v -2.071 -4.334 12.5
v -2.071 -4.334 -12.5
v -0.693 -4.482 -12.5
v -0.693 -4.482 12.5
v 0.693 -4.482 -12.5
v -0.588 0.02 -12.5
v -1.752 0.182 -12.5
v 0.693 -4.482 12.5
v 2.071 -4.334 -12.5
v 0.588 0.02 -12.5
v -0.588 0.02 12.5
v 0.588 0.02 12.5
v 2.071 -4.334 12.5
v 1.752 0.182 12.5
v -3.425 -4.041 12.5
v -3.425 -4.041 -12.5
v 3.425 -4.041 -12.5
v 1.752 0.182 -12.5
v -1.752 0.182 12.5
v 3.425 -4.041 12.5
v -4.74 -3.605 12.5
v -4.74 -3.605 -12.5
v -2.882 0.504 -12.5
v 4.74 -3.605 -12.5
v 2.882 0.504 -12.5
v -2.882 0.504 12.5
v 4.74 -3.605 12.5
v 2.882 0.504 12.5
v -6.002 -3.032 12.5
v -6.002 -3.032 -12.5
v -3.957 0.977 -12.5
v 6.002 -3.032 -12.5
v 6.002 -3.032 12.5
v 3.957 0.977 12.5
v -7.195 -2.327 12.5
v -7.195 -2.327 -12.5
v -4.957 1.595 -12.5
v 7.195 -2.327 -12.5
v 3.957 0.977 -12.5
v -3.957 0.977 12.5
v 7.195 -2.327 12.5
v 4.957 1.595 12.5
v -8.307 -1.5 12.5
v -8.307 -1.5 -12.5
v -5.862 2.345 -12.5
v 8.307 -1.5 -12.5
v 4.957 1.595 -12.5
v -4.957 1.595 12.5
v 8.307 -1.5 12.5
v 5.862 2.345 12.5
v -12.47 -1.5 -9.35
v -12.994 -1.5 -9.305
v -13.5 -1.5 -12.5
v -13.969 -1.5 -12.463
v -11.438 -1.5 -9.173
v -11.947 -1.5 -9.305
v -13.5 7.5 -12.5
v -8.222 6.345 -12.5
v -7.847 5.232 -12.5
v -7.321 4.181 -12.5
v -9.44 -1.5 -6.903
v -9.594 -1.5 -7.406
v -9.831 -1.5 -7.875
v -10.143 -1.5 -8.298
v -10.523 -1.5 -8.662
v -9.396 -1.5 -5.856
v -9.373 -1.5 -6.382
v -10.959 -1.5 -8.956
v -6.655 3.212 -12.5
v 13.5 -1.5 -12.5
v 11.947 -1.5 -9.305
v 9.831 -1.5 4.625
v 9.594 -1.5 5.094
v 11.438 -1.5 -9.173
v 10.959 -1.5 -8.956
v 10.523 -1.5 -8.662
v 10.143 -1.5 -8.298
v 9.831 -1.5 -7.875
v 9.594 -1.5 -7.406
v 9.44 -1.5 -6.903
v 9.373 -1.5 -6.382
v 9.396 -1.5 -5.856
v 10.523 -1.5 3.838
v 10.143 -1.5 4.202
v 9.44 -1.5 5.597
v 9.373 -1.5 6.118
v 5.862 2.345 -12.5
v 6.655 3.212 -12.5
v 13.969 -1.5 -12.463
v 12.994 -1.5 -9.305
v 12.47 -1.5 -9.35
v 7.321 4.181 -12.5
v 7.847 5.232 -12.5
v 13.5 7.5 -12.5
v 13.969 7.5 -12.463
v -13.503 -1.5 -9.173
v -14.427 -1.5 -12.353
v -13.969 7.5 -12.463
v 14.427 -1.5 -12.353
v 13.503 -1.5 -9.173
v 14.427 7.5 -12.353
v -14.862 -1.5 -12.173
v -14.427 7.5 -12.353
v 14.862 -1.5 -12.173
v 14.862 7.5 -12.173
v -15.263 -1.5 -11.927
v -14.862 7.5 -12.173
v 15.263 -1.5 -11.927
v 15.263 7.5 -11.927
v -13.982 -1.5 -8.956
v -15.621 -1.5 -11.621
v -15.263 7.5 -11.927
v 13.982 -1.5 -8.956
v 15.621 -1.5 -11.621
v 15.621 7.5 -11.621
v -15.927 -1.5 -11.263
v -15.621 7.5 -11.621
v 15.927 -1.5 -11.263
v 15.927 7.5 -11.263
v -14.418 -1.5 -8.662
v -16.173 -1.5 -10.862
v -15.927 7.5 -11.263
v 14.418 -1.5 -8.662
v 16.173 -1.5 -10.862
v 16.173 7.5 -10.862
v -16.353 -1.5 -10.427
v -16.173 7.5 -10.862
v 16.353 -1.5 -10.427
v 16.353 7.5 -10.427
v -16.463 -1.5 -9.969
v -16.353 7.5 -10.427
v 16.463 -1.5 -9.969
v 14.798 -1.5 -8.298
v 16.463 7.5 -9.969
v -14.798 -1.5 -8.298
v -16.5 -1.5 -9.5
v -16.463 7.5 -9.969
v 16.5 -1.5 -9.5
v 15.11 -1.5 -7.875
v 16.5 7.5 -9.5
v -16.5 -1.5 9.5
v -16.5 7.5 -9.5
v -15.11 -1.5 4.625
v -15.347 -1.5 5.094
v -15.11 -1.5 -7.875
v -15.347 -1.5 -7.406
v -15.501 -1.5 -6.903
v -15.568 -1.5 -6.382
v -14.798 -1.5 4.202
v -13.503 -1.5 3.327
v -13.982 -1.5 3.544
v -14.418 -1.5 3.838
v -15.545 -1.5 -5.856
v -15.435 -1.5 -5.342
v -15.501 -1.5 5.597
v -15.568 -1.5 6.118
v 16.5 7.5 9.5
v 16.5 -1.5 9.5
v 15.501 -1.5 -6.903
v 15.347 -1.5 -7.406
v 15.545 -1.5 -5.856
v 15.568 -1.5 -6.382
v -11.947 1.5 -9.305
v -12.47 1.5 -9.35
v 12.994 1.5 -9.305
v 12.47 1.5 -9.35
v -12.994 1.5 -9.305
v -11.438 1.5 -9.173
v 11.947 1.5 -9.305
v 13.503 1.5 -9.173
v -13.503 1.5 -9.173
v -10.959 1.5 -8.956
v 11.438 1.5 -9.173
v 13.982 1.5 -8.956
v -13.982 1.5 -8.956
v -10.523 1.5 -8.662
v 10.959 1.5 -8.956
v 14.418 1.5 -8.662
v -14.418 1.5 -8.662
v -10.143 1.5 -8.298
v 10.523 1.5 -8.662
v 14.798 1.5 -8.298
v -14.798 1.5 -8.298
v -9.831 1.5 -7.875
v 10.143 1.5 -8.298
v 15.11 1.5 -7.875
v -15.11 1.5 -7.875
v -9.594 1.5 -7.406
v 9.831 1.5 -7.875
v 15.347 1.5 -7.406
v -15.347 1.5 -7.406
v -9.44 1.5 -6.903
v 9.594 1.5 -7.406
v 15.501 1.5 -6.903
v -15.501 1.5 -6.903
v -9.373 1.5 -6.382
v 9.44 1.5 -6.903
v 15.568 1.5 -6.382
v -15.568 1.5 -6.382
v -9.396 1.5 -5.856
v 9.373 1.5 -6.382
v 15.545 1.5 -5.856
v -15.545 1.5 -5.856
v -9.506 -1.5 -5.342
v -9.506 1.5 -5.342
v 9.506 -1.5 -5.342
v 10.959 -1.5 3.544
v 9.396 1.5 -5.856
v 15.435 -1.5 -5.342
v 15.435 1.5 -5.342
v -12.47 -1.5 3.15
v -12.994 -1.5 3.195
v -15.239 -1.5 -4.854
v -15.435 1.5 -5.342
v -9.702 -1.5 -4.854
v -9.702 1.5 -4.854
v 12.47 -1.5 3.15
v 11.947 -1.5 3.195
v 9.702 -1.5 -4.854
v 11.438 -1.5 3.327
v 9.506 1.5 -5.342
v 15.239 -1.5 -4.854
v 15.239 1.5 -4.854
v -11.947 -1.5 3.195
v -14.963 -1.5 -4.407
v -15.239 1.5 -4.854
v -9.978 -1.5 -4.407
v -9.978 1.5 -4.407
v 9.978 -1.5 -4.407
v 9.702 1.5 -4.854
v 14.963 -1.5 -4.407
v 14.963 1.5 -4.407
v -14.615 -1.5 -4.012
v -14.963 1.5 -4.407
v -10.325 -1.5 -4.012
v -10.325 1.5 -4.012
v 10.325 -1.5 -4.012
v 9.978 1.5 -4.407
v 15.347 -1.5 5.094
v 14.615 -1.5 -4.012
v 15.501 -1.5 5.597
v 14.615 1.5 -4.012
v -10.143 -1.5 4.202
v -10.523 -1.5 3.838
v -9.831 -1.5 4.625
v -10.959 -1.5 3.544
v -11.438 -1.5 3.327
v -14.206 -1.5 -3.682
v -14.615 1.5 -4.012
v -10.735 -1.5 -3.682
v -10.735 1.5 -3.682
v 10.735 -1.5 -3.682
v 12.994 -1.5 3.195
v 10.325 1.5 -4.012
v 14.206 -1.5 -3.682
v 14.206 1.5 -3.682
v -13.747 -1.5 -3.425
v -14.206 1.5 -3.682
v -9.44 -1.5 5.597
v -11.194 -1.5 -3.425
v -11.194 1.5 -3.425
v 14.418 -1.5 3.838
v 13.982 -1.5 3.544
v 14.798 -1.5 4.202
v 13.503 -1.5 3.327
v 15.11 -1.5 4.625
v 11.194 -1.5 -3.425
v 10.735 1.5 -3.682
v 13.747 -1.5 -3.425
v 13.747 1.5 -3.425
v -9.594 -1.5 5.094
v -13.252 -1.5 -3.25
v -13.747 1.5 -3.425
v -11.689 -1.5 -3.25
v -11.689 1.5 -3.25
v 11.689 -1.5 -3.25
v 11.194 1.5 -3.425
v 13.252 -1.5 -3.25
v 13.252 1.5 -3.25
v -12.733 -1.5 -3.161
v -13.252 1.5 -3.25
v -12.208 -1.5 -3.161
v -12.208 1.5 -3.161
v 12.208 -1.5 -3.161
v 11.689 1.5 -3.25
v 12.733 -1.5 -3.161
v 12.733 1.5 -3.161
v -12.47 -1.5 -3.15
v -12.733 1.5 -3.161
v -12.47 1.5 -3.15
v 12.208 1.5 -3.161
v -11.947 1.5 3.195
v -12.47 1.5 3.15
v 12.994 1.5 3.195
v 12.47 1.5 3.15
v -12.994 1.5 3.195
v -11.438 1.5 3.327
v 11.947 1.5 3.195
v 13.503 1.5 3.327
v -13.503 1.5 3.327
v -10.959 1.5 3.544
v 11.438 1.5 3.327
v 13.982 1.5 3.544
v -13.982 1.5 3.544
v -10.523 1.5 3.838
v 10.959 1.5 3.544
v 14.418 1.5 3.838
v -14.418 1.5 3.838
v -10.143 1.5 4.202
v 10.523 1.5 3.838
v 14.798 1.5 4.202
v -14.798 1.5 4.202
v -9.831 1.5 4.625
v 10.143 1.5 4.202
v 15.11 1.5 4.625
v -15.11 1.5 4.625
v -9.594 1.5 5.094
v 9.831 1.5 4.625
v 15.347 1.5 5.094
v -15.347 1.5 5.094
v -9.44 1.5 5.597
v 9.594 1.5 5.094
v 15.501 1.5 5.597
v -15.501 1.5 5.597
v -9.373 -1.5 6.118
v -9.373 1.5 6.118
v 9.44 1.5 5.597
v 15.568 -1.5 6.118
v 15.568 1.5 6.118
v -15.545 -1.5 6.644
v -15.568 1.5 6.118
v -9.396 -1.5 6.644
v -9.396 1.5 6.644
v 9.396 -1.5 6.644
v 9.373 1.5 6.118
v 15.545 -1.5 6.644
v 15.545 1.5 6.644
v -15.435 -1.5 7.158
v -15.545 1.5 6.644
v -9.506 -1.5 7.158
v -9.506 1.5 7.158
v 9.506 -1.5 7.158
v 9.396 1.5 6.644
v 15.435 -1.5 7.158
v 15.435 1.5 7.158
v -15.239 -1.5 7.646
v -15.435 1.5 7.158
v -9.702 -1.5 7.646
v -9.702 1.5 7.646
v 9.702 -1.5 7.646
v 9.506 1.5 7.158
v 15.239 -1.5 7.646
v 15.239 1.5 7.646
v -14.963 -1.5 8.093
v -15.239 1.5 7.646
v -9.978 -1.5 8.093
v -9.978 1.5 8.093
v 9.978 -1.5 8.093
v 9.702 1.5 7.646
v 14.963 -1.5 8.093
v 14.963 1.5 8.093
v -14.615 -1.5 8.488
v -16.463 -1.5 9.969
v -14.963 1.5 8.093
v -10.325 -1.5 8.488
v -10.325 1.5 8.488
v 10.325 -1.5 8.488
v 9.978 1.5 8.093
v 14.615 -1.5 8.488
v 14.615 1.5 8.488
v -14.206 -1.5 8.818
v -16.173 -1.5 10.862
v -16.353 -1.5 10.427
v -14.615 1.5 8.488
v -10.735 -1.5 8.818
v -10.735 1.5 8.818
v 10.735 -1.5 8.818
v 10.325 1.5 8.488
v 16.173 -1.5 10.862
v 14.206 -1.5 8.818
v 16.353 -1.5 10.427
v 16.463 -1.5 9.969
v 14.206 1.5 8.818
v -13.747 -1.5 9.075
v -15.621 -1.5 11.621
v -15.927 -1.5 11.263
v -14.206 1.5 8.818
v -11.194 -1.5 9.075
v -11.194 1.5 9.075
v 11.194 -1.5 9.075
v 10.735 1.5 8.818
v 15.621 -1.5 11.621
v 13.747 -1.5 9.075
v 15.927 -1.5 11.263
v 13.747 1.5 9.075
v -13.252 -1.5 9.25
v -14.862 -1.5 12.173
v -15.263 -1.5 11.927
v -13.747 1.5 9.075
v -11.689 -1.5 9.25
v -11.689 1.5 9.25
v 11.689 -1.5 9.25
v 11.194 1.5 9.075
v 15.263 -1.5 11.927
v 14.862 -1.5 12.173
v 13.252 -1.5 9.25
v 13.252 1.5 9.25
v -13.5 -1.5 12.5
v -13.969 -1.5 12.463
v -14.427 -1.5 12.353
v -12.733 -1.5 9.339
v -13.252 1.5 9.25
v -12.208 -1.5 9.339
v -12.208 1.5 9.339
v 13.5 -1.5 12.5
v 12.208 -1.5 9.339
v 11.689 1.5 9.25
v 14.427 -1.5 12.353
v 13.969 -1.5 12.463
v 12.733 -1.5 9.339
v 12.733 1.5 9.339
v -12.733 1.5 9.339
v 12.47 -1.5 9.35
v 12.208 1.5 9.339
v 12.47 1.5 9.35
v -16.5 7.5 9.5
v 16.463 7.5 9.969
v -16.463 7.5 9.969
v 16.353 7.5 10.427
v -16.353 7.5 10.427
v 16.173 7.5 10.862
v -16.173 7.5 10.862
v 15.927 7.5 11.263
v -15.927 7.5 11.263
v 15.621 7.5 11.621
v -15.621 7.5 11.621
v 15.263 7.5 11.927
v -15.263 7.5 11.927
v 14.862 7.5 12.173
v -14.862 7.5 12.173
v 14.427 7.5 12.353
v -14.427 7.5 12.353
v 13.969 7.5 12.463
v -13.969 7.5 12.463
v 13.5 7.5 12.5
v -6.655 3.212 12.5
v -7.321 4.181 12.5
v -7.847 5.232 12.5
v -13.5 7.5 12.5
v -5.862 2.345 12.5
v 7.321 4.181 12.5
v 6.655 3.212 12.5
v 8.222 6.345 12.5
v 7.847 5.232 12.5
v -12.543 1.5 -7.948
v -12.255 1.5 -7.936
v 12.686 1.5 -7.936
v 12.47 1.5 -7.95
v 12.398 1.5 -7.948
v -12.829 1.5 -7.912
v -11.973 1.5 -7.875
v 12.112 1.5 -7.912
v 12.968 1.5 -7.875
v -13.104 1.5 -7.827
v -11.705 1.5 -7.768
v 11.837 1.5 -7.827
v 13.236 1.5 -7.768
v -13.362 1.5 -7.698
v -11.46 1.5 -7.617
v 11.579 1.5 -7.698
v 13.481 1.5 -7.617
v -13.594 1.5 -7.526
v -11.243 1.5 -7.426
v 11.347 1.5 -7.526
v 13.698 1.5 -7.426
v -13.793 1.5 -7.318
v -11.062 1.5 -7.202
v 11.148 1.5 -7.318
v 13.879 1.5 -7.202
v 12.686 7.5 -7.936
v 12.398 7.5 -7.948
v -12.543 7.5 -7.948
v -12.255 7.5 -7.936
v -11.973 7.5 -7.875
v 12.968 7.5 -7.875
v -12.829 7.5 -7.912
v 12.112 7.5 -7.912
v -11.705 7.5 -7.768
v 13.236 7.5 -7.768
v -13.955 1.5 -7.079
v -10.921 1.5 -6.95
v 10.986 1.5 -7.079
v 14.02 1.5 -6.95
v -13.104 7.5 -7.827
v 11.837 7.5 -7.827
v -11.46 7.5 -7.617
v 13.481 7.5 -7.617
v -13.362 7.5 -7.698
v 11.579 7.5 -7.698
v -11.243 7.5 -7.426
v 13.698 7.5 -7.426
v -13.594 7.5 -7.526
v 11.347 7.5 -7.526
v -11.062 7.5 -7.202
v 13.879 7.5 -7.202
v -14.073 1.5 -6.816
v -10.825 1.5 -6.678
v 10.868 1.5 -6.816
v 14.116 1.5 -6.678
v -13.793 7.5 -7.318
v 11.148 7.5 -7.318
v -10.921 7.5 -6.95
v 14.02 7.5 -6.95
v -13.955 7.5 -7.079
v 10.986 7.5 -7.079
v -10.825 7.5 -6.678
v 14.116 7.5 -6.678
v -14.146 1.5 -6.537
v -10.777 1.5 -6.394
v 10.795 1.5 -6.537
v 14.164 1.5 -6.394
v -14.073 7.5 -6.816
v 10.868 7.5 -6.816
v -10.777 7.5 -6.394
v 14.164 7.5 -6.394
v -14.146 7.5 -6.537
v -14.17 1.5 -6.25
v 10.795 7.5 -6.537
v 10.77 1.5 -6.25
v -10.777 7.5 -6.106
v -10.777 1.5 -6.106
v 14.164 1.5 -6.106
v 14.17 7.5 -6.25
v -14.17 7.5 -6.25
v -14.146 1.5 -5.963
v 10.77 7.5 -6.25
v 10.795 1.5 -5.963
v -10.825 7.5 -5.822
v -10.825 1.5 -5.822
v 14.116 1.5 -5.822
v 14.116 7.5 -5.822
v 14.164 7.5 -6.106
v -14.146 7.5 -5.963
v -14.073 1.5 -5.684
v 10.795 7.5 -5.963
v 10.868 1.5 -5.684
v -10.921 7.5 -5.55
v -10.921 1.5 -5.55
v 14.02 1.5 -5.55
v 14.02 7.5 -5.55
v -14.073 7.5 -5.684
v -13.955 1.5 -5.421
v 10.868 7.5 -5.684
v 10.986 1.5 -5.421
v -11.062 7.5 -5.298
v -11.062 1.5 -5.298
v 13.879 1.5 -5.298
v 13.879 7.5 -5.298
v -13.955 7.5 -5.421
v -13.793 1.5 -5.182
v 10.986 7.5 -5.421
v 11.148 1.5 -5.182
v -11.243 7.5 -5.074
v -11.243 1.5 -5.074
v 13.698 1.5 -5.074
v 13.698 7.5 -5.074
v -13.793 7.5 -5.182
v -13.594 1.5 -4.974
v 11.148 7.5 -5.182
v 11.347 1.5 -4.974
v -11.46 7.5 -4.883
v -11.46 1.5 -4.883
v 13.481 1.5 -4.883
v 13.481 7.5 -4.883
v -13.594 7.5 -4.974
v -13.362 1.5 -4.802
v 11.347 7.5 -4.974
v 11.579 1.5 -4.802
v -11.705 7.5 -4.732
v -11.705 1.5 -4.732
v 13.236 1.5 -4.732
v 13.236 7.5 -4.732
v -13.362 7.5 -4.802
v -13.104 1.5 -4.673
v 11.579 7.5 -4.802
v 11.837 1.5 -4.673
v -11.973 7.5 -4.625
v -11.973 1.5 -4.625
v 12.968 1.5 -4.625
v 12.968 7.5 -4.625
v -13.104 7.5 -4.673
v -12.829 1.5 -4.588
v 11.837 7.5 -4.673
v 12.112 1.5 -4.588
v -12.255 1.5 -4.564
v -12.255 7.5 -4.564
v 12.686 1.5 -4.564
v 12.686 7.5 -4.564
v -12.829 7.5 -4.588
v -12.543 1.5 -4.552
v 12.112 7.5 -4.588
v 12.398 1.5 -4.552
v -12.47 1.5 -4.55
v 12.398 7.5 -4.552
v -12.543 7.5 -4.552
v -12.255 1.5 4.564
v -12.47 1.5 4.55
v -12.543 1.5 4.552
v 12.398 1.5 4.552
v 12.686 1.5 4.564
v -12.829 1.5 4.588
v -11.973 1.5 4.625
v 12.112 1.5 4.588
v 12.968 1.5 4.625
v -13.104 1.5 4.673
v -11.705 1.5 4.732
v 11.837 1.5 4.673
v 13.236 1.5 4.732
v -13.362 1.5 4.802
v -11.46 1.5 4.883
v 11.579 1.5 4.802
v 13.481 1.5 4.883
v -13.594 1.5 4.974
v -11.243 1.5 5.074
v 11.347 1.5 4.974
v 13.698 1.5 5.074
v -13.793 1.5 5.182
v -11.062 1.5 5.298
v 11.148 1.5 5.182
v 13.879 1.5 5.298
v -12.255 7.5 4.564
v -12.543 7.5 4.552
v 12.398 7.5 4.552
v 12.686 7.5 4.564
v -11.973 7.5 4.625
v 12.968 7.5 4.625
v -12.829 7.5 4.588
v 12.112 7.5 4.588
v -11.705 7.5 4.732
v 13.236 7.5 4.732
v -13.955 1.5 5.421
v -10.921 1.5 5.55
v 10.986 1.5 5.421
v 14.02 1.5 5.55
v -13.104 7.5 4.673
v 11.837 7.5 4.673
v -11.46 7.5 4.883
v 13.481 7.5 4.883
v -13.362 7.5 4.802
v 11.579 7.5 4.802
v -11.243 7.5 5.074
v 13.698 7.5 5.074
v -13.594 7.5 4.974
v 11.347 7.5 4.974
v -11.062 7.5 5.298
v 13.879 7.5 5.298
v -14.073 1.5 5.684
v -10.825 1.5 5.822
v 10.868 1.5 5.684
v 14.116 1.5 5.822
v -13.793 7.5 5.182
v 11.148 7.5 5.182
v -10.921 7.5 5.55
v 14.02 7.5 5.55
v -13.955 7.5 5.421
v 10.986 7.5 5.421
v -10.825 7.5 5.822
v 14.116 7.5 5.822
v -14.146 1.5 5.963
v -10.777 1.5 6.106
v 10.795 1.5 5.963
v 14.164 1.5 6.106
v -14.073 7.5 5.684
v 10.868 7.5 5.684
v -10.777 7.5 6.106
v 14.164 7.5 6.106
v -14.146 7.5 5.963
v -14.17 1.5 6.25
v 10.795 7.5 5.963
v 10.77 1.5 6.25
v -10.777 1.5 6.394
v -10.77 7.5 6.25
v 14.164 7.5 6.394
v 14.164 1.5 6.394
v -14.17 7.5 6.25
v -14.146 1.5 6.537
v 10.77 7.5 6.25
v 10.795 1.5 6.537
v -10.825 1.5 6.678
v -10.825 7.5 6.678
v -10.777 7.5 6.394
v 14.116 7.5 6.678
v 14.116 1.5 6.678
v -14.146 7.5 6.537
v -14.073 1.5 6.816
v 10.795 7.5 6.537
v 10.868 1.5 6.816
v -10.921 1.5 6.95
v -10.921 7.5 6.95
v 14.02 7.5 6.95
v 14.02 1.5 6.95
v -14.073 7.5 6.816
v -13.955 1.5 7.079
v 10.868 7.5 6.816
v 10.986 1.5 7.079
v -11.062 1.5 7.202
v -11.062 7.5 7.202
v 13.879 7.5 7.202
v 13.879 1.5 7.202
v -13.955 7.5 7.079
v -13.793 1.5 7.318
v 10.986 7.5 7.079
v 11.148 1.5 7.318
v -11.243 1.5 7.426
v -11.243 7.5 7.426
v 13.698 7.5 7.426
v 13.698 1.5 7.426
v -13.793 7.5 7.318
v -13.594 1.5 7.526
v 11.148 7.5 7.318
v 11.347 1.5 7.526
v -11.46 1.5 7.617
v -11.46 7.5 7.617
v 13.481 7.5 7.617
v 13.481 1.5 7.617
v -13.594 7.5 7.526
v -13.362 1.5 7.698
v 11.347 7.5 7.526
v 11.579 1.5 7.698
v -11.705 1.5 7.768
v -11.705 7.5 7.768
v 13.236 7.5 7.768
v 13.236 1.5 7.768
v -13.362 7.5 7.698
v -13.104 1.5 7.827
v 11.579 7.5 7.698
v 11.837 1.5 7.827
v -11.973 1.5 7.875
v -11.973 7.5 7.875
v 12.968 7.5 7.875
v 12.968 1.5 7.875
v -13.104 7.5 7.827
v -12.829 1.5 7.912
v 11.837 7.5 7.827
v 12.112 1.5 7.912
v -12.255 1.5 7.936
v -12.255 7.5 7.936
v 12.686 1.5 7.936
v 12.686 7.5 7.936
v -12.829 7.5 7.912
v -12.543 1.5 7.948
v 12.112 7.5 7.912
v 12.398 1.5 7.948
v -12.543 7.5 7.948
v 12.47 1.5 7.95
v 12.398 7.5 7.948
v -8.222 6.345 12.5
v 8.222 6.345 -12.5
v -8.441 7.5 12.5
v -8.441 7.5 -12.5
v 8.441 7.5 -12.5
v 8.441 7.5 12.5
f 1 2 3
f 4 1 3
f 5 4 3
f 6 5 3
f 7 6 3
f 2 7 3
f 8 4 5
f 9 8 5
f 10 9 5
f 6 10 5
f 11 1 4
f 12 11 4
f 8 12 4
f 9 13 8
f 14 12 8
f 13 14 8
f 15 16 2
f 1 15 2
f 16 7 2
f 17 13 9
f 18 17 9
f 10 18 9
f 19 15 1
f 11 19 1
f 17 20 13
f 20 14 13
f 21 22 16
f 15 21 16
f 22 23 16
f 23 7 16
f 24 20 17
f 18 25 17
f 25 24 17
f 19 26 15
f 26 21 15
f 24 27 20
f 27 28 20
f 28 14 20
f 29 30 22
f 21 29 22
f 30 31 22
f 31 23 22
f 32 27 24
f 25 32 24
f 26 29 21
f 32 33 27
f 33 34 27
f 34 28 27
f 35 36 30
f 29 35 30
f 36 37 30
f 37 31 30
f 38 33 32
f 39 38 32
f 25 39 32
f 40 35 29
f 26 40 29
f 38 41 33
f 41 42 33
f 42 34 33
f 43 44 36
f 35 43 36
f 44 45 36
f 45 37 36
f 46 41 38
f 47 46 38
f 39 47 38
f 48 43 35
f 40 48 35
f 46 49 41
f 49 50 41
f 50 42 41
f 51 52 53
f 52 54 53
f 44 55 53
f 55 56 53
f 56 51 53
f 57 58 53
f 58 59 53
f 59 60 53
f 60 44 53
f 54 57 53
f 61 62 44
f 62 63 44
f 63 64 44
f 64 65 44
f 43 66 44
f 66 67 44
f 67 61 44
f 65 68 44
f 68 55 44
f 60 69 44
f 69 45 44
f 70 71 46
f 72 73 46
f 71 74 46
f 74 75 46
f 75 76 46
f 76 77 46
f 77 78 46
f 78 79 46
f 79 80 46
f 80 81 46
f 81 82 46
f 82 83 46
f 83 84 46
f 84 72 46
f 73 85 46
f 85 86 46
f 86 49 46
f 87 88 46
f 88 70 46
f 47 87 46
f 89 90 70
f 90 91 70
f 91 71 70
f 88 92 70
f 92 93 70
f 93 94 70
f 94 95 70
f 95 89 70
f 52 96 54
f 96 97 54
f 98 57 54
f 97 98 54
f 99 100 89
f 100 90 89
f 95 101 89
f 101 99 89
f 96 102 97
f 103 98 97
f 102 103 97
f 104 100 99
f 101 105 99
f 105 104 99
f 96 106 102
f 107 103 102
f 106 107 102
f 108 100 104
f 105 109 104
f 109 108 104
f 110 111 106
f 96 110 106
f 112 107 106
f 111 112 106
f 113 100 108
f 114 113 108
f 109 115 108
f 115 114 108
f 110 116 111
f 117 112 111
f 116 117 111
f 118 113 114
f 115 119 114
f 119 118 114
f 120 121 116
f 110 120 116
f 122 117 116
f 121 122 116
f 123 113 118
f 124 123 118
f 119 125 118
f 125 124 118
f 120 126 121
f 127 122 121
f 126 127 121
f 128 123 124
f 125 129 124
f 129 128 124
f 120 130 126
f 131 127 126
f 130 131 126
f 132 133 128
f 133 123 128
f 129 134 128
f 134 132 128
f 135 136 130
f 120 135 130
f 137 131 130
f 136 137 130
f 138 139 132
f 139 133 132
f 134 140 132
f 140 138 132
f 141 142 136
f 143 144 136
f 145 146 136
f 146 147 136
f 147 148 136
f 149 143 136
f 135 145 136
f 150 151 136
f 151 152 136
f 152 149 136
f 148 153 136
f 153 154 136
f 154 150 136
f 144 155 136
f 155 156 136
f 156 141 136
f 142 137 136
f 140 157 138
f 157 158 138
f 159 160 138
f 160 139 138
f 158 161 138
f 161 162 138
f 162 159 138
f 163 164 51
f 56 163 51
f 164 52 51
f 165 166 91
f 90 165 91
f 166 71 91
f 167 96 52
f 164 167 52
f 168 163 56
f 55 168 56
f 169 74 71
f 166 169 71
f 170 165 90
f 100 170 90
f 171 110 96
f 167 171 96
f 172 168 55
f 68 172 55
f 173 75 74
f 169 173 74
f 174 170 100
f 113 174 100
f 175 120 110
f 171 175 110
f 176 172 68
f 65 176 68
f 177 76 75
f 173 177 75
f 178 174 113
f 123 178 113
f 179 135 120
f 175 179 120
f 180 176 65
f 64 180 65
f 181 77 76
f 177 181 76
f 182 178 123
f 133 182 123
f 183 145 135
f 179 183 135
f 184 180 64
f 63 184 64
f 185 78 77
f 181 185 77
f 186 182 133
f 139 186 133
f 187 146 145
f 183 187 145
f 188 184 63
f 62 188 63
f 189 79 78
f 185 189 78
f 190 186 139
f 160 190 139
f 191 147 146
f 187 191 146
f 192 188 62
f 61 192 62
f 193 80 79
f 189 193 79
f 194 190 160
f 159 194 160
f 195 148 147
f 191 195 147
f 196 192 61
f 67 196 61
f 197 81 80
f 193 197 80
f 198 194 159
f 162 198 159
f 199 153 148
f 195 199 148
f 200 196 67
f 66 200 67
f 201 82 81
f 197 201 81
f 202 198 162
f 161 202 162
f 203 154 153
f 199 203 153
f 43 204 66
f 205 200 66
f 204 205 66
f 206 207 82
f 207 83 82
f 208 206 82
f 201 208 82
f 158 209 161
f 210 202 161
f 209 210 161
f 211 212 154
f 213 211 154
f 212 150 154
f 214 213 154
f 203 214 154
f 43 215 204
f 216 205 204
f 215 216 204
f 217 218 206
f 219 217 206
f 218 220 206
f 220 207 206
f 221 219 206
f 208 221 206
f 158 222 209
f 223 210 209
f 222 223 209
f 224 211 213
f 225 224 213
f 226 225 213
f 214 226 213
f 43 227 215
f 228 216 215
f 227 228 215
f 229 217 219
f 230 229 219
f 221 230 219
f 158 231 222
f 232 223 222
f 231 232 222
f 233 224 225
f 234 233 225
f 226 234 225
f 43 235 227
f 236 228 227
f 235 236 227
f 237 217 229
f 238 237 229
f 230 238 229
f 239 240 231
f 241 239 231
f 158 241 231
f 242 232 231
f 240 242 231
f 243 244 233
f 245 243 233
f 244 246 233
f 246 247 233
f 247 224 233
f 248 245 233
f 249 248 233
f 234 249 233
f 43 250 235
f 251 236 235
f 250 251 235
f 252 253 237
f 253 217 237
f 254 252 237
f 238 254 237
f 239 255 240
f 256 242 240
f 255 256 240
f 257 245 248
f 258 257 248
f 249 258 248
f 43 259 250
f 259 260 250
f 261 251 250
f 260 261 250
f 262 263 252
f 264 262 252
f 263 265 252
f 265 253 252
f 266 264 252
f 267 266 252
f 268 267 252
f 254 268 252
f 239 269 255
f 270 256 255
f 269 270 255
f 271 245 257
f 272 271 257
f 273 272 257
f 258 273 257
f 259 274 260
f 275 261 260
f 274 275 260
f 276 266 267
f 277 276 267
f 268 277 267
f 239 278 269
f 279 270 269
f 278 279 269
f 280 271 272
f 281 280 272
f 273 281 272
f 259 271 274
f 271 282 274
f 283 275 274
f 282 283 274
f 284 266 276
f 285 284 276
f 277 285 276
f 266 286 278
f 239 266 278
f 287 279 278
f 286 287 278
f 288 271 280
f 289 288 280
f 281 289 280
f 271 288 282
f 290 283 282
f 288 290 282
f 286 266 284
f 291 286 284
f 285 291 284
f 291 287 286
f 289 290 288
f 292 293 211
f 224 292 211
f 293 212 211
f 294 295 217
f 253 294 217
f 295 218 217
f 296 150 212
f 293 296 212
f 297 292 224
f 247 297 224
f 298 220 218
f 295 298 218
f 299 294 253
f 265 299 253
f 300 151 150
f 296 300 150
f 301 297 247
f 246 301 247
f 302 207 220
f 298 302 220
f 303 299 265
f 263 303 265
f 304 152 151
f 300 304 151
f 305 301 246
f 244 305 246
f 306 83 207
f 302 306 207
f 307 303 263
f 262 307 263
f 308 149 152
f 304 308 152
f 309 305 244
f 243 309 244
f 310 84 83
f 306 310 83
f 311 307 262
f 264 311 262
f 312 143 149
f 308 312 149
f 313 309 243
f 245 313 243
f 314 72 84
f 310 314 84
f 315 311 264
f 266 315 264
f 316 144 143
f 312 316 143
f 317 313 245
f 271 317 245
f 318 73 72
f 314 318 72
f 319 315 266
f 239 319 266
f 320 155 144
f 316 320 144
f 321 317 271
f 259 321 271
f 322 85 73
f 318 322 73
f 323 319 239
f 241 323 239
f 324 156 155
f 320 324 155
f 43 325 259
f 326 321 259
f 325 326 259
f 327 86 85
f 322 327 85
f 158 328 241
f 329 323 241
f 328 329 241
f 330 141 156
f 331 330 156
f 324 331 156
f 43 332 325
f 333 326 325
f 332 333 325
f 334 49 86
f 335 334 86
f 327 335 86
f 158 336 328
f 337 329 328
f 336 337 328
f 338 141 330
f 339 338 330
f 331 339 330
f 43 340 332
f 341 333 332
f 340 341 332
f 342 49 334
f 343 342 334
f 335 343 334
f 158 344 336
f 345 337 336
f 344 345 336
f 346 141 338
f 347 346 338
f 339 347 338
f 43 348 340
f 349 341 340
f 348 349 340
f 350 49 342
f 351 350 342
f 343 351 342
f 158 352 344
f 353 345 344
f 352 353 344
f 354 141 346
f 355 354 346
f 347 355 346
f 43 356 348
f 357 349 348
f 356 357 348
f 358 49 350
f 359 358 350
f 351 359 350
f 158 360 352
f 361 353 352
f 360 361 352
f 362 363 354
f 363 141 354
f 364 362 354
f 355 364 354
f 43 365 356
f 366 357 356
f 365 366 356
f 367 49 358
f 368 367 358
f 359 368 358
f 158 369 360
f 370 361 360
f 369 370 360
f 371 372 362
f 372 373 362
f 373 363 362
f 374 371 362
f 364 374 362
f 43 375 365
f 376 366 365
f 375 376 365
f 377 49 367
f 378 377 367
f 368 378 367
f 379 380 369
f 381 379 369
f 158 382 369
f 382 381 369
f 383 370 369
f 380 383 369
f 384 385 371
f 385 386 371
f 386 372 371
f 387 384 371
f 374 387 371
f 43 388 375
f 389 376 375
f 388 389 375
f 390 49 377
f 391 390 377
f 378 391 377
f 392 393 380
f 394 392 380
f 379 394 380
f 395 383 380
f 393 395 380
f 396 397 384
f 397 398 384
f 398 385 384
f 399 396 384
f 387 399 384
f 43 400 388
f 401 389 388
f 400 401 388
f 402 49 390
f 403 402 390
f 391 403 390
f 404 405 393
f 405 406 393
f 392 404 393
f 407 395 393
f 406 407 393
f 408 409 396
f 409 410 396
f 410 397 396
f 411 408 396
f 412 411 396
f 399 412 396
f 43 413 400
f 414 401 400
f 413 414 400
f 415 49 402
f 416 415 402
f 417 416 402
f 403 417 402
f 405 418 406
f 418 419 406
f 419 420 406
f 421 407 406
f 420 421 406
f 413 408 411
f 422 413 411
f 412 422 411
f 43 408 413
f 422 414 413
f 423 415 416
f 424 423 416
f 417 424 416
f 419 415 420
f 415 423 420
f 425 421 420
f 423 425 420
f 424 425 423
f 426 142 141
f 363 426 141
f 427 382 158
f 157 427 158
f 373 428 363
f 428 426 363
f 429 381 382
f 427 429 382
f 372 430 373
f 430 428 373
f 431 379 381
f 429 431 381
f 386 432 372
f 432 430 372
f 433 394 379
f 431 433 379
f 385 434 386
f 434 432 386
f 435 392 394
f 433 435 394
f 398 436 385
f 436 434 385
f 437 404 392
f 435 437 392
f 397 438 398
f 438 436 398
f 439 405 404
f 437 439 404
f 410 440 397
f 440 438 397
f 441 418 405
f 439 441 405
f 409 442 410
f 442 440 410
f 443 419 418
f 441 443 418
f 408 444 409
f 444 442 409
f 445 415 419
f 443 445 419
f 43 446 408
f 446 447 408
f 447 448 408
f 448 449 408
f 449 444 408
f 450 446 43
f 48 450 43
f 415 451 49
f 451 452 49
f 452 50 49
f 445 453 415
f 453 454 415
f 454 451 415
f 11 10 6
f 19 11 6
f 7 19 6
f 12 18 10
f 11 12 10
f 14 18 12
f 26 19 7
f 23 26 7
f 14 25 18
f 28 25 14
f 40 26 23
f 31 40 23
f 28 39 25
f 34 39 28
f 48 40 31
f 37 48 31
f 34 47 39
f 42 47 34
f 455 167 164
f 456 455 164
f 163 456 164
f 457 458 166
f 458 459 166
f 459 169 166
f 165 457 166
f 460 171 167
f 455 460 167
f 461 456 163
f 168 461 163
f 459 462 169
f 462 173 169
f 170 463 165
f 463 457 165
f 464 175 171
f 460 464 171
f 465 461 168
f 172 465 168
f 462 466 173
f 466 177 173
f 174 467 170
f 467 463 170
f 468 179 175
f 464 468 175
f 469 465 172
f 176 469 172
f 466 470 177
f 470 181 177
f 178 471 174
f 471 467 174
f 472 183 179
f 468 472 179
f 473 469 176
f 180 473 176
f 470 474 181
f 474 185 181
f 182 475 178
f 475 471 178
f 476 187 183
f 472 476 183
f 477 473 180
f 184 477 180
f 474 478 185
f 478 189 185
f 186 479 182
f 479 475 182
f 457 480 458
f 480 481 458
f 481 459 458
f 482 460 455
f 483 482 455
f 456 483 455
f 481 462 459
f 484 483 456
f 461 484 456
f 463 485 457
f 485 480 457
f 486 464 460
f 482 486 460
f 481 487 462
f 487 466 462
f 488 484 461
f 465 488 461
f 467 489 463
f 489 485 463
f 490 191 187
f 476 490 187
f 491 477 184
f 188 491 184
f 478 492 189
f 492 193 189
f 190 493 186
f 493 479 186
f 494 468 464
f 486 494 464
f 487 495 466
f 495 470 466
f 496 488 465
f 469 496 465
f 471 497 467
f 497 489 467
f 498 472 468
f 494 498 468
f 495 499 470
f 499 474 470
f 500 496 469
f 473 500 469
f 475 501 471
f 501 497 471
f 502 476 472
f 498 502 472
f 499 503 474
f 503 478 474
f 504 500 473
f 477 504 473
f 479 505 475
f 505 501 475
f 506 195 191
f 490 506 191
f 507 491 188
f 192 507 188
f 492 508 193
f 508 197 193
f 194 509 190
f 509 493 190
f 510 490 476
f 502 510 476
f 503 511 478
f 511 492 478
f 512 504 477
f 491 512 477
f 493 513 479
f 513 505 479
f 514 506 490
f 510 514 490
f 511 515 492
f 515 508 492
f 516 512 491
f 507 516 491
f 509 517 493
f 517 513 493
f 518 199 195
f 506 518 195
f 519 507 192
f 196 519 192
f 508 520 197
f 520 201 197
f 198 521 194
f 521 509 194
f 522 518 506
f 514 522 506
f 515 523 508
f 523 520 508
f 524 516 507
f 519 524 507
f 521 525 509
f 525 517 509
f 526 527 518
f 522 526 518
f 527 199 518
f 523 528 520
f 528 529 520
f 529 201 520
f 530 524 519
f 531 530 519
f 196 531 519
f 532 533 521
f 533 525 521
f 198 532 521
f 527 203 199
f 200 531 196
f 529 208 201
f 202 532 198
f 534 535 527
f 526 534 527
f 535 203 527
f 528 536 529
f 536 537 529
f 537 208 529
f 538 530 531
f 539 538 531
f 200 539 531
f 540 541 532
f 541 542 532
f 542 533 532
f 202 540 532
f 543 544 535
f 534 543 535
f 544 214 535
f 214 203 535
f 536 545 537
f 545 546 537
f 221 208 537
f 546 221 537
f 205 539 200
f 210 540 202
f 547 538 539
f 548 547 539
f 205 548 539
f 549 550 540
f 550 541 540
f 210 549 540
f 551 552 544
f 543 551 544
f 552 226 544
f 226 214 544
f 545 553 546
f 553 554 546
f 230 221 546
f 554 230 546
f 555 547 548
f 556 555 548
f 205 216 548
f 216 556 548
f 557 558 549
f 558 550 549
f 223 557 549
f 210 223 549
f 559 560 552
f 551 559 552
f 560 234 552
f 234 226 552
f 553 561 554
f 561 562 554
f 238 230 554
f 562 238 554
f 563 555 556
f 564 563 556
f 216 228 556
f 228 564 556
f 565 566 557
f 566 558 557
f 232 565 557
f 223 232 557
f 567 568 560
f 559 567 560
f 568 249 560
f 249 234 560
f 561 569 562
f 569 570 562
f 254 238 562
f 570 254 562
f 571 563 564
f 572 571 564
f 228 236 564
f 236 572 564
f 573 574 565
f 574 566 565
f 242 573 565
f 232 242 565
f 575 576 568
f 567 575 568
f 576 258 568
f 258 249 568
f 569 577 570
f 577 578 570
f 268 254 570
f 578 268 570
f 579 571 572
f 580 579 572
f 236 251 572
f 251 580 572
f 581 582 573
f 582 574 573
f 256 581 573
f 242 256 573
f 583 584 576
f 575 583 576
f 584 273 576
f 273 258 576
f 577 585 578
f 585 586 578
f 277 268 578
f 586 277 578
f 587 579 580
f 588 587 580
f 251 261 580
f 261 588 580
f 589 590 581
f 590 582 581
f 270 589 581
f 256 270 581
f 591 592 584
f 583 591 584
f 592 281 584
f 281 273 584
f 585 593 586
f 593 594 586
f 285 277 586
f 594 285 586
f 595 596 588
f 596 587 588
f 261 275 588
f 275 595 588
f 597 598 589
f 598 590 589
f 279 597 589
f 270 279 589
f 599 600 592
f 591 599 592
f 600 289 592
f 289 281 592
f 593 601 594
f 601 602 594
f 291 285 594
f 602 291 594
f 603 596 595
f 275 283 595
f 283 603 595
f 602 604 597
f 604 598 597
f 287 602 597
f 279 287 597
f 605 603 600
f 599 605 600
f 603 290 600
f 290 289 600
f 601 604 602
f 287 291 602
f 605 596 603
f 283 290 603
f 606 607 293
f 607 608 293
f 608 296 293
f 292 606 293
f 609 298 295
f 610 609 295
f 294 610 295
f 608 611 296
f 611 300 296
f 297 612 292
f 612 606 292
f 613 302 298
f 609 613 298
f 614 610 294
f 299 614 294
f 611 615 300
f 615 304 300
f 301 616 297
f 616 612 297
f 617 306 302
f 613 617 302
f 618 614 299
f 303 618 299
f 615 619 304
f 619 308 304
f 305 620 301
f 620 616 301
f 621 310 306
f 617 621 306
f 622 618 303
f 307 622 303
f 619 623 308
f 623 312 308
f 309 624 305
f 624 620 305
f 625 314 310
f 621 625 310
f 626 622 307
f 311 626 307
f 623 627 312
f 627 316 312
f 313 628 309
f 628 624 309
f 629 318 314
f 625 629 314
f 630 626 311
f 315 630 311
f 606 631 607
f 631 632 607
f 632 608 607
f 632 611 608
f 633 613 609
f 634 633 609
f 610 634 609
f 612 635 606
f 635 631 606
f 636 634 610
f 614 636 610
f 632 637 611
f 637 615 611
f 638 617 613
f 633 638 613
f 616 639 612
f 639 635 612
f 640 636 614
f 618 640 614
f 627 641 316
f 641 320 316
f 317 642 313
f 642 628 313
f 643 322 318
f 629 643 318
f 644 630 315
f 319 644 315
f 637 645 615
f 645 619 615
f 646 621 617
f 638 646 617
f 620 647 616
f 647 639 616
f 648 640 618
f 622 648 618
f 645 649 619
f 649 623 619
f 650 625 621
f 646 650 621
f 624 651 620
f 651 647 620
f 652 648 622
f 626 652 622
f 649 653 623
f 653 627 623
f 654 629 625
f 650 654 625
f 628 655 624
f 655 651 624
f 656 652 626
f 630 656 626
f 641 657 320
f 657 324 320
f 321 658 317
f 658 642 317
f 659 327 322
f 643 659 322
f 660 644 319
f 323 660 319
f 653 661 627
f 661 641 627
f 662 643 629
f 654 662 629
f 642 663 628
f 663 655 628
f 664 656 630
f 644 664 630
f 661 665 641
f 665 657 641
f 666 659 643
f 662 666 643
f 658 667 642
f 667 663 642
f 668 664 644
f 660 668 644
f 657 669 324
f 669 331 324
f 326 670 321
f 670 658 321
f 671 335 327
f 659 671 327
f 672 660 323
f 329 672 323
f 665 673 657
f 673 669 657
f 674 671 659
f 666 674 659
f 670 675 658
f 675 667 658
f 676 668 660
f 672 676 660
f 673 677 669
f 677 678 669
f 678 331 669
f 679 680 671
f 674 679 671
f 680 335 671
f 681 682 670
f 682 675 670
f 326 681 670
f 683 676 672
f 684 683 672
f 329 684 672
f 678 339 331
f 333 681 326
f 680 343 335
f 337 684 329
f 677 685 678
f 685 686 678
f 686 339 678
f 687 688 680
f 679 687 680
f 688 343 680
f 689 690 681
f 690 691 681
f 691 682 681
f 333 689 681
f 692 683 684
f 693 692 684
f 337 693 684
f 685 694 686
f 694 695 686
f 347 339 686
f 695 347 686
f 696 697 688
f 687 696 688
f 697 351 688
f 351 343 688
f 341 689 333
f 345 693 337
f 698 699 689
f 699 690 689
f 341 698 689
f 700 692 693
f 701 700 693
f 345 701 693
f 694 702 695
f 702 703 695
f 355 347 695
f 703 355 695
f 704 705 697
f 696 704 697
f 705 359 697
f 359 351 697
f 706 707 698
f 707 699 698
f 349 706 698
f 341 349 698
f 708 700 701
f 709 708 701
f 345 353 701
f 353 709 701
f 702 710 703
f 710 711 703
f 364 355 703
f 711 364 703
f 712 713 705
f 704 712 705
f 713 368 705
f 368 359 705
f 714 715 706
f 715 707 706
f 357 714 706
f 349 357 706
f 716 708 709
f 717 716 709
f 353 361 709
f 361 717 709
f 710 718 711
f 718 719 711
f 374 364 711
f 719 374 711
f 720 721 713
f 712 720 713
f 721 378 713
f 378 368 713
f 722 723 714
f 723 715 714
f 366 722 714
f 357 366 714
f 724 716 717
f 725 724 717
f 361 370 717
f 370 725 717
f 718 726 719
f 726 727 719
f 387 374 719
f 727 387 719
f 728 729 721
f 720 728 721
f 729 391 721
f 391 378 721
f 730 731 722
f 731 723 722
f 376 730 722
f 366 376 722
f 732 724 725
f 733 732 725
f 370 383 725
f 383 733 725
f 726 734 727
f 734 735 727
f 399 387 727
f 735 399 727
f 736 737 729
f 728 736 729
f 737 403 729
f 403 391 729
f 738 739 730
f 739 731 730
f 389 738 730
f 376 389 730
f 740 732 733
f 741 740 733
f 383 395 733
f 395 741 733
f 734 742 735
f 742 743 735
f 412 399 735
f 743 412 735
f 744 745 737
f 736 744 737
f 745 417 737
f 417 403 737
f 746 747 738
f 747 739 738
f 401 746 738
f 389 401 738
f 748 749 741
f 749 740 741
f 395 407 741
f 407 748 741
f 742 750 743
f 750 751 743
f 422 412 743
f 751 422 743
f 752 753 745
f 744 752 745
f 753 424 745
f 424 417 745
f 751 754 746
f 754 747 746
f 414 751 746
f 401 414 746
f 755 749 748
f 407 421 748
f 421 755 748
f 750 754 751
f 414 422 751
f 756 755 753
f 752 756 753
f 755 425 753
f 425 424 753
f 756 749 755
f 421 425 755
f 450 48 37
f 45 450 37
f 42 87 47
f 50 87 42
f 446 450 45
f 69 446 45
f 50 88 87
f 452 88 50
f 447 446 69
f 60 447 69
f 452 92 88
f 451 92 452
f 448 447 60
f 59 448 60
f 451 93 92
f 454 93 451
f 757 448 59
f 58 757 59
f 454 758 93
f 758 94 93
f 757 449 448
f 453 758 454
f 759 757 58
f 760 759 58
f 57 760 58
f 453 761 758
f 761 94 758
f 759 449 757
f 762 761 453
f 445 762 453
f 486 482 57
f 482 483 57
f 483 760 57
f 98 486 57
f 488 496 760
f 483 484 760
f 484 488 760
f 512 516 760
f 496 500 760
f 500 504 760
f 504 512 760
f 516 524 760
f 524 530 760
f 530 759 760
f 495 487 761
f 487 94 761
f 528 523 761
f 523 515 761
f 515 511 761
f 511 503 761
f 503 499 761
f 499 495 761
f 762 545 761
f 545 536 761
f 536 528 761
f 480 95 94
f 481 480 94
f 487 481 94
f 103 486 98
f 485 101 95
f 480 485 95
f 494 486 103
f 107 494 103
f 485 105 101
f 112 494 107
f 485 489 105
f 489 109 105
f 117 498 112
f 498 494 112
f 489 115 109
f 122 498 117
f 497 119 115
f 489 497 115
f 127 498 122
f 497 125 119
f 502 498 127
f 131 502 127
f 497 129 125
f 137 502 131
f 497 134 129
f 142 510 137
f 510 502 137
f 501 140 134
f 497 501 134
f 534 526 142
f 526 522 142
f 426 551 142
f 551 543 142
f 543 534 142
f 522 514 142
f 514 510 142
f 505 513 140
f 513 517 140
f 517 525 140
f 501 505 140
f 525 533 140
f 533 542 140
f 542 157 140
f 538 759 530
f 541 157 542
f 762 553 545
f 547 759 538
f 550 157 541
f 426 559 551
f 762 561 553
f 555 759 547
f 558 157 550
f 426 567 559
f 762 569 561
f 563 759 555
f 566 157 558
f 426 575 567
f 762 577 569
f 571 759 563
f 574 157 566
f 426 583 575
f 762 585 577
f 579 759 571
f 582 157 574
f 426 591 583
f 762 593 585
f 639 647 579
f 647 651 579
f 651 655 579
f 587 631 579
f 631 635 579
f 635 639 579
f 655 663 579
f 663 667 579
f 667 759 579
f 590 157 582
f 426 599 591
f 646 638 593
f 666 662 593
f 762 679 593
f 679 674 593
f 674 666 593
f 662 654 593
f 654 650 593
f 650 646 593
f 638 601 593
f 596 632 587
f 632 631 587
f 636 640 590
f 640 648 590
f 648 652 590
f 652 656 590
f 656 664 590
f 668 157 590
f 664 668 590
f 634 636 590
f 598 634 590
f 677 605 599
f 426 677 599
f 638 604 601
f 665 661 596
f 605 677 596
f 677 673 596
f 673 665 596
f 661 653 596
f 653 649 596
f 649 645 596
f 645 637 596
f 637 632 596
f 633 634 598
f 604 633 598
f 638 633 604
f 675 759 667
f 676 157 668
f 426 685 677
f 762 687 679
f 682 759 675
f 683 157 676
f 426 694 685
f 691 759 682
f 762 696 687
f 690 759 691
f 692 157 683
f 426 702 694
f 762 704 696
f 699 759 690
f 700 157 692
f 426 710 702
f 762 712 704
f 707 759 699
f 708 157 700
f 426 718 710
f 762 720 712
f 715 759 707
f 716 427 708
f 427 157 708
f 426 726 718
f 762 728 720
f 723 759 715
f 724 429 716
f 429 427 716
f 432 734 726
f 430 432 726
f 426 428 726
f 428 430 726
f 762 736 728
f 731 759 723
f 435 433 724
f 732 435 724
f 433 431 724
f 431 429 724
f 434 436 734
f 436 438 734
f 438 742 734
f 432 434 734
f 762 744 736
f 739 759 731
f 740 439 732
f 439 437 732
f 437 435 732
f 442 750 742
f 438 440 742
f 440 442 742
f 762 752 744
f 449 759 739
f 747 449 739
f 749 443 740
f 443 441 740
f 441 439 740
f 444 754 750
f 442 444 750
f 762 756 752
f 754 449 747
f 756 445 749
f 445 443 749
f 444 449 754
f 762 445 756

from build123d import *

# Parameters (mm, degrees)
SALIENTE_EXTRUIR1_DEPTH = 12.5
CROQUIS2_R              = 1.7
CORTAR_EXTRUIR1_DEPTH   = 9
CROQUIS6_R              = 3.1
CORTAR_EXTRUIR4_DEPTH   = 3
REDONDEO1_R             = 3


with BuildPart() as part:
    # Croquis1 → Saliente-Extruir1 (new body, symmetric)
    with BuildSketch(Plane.XY):
        with BuildLine():
            Line((-16.5, 7.5), (-8.440971508, 7.5))
            ThreePointArc((-8.440971508, 7.5), (0, 0), (8.440971508, 7.5))
            Line((8.440971508, 7.5), (16.5, 7.5))
            Line((16.5, 7.5), (16.5, -1.5))
            Line((16.5, -1.5), (8.306623863, -1.5))
            ThreePointArc((8.306623863, -1.5), (0, -4.5), (-8.306623863, -1.5))
            Line((-8.306623863, -1.5), (-16.5, -1.5))
            Line((-16.5, -1.5), (-16.5, 7.5))
        make_face()
    extrude(amount=SALIENTE_EXTRUIR1_DEPTH, both=True)

    # Croquis2 → Cortar-Extruir1 (cut)
    with BuildSketch(Plane(origin=(0, 7.5, 0), x_dir=(1, 0, 0), z_dir=(0, 1, 0))):
        with Locations((-12.470485754, 6.25)):
            Circle(CROQUIS2_R)
        with Locations((12.470485754, 6.25)):
            Circle(CROQUIS2_R)
        with Locations((12.470485754, -6.25)):
            Circle(CROQUIS2_R)
        with Locations((-12.470485754, -6.25)):
            Circle(CROQUIS2_R)
    extrude(amount=-CORTAR_EXTRUIR1_DEPTH, mode=Mode.SUBTRACT)

    # Croquis6 → Cortar-Extruir4 (cut)
    with BuildSketch(Plane.XZ.offset(1.5)):
        with Locations((-12.470485754, 6.25)):
            Circle(CROQUIS6_R)
        with Locations((12.470485754, 6.25)):
            Circle(CROQUIS6_R)
        with Locations((12.470485754, -6.25)):
            Circle(CROQUIS6_R)
        with Locations((-12.470485754, -6.25)):
            Circle(CROQUIS6_R)
    extrude(amount=-CORTAR_EXTRUIR4_DEPTH, mode=Mode.SUBTRACT)

    # Redondeo1
    redondeo1_edges = [part.edges().sort_by_distance(p)[0] for p in [
        (16.5, 3, -12.5),
        (-16.5, 3, 12.5),
        (16.5, 3, 12.5),
        (-16.5, 3, -12.5),
    ]]
    fillet(redondeo1_edges, radius=REDONDEO1_R)


solid = part.part
